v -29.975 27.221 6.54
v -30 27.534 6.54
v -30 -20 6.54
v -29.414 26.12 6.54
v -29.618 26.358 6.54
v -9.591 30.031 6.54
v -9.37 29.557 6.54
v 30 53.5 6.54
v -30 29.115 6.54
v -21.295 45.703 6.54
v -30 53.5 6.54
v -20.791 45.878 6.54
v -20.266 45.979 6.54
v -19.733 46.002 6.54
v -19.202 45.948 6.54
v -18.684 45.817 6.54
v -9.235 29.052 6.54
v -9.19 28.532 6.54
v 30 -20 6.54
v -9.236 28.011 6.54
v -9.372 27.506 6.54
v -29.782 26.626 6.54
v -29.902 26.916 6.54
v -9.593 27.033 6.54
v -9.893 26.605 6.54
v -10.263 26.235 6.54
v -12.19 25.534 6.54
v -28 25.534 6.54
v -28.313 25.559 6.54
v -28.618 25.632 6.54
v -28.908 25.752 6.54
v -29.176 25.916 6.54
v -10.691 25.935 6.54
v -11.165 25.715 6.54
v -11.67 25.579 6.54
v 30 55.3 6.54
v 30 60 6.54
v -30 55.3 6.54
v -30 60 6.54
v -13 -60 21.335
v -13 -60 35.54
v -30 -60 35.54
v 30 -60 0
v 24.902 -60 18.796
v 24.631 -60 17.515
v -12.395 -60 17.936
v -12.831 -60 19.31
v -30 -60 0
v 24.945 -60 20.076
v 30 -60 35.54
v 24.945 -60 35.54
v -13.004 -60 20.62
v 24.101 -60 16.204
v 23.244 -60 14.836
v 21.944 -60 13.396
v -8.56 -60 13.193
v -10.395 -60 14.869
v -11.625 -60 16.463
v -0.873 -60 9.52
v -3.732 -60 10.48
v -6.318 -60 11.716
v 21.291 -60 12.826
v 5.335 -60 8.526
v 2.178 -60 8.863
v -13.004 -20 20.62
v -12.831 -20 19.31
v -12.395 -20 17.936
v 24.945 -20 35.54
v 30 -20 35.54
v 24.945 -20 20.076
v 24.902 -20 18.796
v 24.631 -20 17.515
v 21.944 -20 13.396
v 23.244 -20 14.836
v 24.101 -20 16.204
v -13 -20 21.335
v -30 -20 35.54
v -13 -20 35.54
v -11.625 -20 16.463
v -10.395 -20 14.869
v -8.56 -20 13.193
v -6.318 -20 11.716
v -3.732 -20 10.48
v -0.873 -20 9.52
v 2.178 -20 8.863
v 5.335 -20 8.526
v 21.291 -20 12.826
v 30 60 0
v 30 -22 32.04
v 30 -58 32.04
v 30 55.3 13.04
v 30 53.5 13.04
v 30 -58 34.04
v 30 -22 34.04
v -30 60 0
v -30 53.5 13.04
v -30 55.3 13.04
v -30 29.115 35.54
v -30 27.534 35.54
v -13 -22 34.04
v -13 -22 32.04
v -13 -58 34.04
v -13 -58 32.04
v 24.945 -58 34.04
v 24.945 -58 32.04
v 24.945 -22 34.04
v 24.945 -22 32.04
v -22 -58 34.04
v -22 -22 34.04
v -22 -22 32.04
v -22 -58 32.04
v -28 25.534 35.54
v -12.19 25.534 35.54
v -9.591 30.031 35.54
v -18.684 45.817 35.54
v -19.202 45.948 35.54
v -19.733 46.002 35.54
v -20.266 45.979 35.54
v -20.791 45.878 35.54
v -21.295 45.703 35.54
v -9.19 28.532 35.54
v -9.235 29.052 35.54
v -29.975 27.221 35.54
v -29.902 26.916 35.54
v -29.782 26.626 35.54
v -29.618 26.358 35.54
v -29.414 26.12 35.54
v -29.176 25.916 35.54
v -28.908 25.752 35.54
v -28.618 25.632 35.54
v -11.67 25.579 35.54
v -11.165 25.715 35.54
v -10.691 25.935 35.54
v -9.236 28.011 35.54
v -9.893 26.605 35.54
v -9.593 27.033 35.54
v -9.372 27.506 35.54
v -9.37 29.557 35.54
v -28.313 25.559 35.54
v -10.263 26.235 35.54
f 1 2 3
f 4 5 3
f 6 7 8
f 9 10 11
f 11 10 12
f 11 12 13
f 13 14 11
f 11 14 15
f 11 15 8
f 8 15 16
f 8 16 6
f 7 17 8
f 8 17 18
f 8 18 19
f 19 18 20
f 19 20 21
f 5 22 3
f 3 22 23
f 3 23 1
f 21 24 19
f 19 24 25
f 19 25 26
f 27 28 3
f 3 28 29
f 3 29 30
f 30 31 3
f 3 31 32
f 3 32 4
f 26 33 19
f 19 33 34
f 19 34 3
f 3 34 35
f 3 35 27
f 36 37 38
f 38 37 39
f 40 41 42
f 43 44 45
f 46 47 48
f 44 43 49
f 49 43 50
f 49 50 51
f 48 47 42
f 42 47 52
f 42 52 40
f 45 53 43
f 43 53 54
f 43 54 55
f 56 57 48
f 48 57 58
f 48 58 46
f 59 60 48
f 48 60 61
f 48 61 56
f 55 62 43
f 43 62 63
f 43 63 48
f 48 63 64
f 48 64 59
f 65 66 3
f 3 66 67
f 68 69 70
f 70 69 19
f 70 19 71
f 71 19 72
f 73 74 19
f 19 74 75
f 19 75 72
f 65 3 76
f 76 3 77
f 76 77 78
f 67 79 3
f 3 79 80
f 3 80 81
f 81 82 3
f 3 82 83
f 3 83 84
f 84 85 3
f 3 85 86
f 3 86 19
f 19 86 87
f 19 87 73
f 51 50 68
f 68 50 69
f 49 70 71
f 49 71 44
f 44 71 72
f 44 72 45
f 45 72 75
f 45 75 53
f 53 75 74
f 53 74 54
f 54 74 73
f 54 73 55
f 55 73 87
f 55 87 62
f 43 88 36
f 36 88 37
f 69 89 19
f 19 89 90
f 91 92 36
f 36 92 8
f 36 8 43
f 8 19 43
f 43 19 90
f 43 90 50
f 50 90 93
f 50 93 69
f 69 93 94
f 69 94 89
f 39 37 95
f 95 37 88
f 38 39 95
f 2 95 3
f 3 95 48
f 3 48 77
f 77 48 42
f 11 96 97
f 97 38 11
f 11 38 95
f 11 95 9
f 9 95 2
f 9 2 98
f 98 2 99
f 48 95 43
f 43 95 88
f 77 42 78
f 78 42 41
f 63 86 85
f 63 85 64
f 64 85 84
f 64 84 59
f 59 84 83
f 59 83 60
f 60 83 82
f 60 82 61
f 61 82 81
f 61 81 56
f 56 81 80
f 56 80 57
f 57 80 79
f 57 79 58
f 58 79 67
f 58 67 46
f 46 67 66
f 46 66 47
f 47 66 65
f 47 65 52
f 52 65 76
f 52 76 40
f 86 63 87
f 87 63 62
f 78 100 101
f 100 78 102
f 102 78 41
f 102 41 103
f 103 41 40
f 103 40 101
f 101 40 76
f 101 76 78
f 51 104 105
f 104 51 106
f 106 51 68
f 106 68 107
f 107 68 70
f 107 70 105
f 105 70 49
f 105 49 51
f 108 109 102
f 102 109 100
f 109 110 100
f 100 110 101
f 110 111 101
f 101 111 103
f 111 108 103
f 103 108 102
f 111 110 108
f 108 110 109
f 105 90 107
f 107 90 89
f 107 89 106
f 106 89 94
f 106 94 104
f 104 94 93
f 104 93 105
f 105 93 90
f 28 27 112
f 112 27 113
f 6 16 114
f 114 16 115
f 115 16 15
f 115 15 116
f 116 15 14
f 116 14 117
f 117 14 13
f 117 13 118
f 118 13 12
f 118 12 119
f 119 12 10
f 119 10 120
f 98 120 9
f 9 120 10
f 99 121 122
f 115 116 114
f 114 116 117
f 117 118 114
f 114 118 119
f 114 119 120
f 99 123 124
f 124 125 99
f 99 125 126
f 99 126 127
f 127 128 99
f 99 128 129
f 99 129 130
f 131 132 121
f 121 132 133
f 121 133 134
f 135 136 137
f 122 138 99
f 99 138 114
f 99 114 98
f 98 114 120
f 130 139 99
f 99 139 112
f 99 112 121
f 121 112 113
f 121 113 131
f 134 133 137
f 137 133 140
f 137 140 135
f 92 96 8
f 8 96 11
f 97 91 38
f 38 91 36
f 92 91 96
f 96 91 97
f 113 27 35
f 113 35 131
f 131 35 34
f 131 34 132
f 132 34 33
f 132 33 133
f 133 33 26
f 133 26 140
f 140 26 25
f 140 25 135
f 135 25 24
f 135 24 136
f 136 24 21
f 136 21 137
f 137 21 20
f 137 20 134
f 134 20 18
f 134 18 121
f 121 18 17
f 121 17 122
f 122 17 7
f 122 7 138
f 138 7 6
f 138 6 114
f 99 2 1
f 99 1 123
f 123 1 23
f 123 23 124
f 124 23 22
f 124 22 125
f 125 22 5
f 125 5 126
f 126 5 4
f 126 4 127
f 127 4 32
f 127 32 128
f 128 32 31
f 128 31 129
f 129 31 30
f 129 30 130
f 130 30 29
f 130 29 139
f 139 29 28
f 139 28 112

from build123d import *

# Parameters (mm, degrees)
SKETCH1_W           = 60
SKETCH1_H           = 120
BOSS_EXTRUDE1_DEPTH = 6.54
SKETCH17_W          = 60
SKETCH17_H          = 40
BOSS_EXTRUDE6_DEPTH = 29
CUT_EXTRUDE1_REACH  = 42
CUT_EXTRUDE2_REACH  = 37.54
SKETCH21_W          = 37.9445377
SKETCH21_H          = 40
SKETCH23_W          = 2
SKETCH23_H          = 36
CUT_EXTRUDE3_DEPTH  = 9
SKETCH24_W          = 2
SKETCH24_H          = 36
CUT_EXTRUDE4_DEPTH  = 9
BOSS_EXTRUDE8_DEPTH = 29
SKETCH36_W          = 60
SKETCH36_H          = 1.8
BOSS_EXTRUDE9_DEPTH = 6.5
FILLET1_R           = 3
FILLET2_R           = 2


with BuildPart() as part:
    # Sketch1 → Boss-Extrude1 (new body)
    with BuildSketch(Plane.XY):
        Rectangle(SKETCH1_W, SKETCH1_H)
    extrude(amount=BOSS_EXTRUDE1_DEPTH)

    # Sketch17 → Boss-Extrude6 (add)
    with BuildSketch(Plane.XY.offset(6.54)):
        with Locations((0, -40)):
            Rectangle(SKETCH17_W, SKETCH17_H)
    extrude(amount=BOSS_EXTRUDE6_DEPTH)

    # Sketch18 → Cut-Extrude1 (cut, up to next)
    with BuildSketch(Plane(origin=(0, -20, 0), x_dir=(1, 0, 0), z_dir=(0, 1, 0)), mode=Mode.PRIVATE) as cut_extrude1_sk1:
        with BuildLine():
            Line((5.334966353, -8.526396136), (21.291300905, -12.825812438))
            add(Edge.make_bspline(
                [(5.334966353, -8.526396136), (-17.854714365, -9.780670981), (-12.49786254, -23.648890313), (-7.141010715, -37.517109645), (13.926544327, -30.768916863), (34.994099369, -24.020724082), (21.291300905, -12.825812438)],
                knots=[1.570796327, 1.570796327, 1.570796327, 3.340987112, 3.340987112, 5.111177898, 5.111177898, 6.881368684, 6.881368684, 6.881368684], degree=2, weights=[1, 0.633215673, 1, 0.633215673, 1, 0.633215673, 1]))
        make_face()
    cut_extrude1_tool1 = extrude(cut_extrude1_sk1.sketch, amount=-CUT_EXTRUDE1_REACH, mode=Mode.PRIVATE) & part.part
    add(cut_extrude1_tool1.solids().sort_by_distance((5.792514, -20, 20.554542))[0], mode=Mode.SUBTRACT)

    # Sketch21 → Cut-Extrude2 (cut, up to next)
    with BuildSketch(Plane.XY.offset(35.54), mode=Mode.PRIVATE) as cut_extrude2_sk1:
        with Locations((5.97226885, -40)):
            Rectangle(SKETCH21_W, SKETCH21_H)
    cut_extrude2_tool1 = extrude(cut_extrude2_sk1.sketch, amount=-CUT_EXTRUDE2_REACH, mode=Mode.PRIVATE) & part.part
    add(cut_extrude2_tool1.solids().sort_by_distance((5.972269, -40, 35.54))[0], mode=Mode.SUBTRACT)

    # Sketch23 → Cut-Extrude3 (cut)
    with BuildSketch(Plane(origin=(-13, 0, 0), x_dir=(0, 0, -1), z_dir=(1, 0, 0))):
        with Locations((-33.04, -40)):
            Rectangle(SKETCH23_W, SKETCH23_H)
    extrude(amount=-CUT_EXTRUDE3_DEPTH, mode=Mode.SUBTRACT)

    # Sketch24 → Cut-Extrude4 (cut)
    with BuildSketch(Plane.ZY.offset(-24.9445377)):
        with Locations((33.04, -40)):
            Rectangle(SKETCH24_W, SKETCH24_H)
    extrude(amount=-CUT_EXTRUDE4_DEPTH, mode=Mode.SUBTRACT)

    # Sketch7 → Boss-Extrude8 (add)
    with BuildSketch(Plane.XY.offset(6.54)):
        with BuildLine():
            Line((-7, 25.533918981), (-18.684094898, 45.817285768))
            ThreePointArc((-18.684094898, 45.817285768), (-20, 46), (-21.294986864, 45.703352481))
            Line((-21.294986864, 45.703352481), (-30, 29.115374119))
            Line((-30, 29.115374119), (-30, 25.533918981))
            Line((-30, 25.533918981), (-7, 25.533918981))
        make_face()
    extrude(amount=BOSS_EXTRUDE8_DEPTH)

    # Sketch36 → Boss-Extrude9 (add)
    with BuildSketch(Plane.XY.offset(6.54)):
        with Locations((0, 54.4)):
            Rectangle(SKETCH36_W, SKETCH36_H)
    extrude(amount=BOSS_EXTRUDE9_DEPTH)

    # Fillet1
    fillet1_edges = [part.edges().sort_by_distance(p)[0] for p in [
        (-7, 25.533918981, 21.04),
    ]]
    fillet(fillet1_edges, radius=FILLET1_R)

    # Fillet2
    fillet2_edges = [part.edges().sort_by_distance(p)[0] for p in [
        (-30, 25.533918981, 21.04),
    ]]
    fillet(fillet2_edges, radius=FILLET2_R)


solid = part.part
